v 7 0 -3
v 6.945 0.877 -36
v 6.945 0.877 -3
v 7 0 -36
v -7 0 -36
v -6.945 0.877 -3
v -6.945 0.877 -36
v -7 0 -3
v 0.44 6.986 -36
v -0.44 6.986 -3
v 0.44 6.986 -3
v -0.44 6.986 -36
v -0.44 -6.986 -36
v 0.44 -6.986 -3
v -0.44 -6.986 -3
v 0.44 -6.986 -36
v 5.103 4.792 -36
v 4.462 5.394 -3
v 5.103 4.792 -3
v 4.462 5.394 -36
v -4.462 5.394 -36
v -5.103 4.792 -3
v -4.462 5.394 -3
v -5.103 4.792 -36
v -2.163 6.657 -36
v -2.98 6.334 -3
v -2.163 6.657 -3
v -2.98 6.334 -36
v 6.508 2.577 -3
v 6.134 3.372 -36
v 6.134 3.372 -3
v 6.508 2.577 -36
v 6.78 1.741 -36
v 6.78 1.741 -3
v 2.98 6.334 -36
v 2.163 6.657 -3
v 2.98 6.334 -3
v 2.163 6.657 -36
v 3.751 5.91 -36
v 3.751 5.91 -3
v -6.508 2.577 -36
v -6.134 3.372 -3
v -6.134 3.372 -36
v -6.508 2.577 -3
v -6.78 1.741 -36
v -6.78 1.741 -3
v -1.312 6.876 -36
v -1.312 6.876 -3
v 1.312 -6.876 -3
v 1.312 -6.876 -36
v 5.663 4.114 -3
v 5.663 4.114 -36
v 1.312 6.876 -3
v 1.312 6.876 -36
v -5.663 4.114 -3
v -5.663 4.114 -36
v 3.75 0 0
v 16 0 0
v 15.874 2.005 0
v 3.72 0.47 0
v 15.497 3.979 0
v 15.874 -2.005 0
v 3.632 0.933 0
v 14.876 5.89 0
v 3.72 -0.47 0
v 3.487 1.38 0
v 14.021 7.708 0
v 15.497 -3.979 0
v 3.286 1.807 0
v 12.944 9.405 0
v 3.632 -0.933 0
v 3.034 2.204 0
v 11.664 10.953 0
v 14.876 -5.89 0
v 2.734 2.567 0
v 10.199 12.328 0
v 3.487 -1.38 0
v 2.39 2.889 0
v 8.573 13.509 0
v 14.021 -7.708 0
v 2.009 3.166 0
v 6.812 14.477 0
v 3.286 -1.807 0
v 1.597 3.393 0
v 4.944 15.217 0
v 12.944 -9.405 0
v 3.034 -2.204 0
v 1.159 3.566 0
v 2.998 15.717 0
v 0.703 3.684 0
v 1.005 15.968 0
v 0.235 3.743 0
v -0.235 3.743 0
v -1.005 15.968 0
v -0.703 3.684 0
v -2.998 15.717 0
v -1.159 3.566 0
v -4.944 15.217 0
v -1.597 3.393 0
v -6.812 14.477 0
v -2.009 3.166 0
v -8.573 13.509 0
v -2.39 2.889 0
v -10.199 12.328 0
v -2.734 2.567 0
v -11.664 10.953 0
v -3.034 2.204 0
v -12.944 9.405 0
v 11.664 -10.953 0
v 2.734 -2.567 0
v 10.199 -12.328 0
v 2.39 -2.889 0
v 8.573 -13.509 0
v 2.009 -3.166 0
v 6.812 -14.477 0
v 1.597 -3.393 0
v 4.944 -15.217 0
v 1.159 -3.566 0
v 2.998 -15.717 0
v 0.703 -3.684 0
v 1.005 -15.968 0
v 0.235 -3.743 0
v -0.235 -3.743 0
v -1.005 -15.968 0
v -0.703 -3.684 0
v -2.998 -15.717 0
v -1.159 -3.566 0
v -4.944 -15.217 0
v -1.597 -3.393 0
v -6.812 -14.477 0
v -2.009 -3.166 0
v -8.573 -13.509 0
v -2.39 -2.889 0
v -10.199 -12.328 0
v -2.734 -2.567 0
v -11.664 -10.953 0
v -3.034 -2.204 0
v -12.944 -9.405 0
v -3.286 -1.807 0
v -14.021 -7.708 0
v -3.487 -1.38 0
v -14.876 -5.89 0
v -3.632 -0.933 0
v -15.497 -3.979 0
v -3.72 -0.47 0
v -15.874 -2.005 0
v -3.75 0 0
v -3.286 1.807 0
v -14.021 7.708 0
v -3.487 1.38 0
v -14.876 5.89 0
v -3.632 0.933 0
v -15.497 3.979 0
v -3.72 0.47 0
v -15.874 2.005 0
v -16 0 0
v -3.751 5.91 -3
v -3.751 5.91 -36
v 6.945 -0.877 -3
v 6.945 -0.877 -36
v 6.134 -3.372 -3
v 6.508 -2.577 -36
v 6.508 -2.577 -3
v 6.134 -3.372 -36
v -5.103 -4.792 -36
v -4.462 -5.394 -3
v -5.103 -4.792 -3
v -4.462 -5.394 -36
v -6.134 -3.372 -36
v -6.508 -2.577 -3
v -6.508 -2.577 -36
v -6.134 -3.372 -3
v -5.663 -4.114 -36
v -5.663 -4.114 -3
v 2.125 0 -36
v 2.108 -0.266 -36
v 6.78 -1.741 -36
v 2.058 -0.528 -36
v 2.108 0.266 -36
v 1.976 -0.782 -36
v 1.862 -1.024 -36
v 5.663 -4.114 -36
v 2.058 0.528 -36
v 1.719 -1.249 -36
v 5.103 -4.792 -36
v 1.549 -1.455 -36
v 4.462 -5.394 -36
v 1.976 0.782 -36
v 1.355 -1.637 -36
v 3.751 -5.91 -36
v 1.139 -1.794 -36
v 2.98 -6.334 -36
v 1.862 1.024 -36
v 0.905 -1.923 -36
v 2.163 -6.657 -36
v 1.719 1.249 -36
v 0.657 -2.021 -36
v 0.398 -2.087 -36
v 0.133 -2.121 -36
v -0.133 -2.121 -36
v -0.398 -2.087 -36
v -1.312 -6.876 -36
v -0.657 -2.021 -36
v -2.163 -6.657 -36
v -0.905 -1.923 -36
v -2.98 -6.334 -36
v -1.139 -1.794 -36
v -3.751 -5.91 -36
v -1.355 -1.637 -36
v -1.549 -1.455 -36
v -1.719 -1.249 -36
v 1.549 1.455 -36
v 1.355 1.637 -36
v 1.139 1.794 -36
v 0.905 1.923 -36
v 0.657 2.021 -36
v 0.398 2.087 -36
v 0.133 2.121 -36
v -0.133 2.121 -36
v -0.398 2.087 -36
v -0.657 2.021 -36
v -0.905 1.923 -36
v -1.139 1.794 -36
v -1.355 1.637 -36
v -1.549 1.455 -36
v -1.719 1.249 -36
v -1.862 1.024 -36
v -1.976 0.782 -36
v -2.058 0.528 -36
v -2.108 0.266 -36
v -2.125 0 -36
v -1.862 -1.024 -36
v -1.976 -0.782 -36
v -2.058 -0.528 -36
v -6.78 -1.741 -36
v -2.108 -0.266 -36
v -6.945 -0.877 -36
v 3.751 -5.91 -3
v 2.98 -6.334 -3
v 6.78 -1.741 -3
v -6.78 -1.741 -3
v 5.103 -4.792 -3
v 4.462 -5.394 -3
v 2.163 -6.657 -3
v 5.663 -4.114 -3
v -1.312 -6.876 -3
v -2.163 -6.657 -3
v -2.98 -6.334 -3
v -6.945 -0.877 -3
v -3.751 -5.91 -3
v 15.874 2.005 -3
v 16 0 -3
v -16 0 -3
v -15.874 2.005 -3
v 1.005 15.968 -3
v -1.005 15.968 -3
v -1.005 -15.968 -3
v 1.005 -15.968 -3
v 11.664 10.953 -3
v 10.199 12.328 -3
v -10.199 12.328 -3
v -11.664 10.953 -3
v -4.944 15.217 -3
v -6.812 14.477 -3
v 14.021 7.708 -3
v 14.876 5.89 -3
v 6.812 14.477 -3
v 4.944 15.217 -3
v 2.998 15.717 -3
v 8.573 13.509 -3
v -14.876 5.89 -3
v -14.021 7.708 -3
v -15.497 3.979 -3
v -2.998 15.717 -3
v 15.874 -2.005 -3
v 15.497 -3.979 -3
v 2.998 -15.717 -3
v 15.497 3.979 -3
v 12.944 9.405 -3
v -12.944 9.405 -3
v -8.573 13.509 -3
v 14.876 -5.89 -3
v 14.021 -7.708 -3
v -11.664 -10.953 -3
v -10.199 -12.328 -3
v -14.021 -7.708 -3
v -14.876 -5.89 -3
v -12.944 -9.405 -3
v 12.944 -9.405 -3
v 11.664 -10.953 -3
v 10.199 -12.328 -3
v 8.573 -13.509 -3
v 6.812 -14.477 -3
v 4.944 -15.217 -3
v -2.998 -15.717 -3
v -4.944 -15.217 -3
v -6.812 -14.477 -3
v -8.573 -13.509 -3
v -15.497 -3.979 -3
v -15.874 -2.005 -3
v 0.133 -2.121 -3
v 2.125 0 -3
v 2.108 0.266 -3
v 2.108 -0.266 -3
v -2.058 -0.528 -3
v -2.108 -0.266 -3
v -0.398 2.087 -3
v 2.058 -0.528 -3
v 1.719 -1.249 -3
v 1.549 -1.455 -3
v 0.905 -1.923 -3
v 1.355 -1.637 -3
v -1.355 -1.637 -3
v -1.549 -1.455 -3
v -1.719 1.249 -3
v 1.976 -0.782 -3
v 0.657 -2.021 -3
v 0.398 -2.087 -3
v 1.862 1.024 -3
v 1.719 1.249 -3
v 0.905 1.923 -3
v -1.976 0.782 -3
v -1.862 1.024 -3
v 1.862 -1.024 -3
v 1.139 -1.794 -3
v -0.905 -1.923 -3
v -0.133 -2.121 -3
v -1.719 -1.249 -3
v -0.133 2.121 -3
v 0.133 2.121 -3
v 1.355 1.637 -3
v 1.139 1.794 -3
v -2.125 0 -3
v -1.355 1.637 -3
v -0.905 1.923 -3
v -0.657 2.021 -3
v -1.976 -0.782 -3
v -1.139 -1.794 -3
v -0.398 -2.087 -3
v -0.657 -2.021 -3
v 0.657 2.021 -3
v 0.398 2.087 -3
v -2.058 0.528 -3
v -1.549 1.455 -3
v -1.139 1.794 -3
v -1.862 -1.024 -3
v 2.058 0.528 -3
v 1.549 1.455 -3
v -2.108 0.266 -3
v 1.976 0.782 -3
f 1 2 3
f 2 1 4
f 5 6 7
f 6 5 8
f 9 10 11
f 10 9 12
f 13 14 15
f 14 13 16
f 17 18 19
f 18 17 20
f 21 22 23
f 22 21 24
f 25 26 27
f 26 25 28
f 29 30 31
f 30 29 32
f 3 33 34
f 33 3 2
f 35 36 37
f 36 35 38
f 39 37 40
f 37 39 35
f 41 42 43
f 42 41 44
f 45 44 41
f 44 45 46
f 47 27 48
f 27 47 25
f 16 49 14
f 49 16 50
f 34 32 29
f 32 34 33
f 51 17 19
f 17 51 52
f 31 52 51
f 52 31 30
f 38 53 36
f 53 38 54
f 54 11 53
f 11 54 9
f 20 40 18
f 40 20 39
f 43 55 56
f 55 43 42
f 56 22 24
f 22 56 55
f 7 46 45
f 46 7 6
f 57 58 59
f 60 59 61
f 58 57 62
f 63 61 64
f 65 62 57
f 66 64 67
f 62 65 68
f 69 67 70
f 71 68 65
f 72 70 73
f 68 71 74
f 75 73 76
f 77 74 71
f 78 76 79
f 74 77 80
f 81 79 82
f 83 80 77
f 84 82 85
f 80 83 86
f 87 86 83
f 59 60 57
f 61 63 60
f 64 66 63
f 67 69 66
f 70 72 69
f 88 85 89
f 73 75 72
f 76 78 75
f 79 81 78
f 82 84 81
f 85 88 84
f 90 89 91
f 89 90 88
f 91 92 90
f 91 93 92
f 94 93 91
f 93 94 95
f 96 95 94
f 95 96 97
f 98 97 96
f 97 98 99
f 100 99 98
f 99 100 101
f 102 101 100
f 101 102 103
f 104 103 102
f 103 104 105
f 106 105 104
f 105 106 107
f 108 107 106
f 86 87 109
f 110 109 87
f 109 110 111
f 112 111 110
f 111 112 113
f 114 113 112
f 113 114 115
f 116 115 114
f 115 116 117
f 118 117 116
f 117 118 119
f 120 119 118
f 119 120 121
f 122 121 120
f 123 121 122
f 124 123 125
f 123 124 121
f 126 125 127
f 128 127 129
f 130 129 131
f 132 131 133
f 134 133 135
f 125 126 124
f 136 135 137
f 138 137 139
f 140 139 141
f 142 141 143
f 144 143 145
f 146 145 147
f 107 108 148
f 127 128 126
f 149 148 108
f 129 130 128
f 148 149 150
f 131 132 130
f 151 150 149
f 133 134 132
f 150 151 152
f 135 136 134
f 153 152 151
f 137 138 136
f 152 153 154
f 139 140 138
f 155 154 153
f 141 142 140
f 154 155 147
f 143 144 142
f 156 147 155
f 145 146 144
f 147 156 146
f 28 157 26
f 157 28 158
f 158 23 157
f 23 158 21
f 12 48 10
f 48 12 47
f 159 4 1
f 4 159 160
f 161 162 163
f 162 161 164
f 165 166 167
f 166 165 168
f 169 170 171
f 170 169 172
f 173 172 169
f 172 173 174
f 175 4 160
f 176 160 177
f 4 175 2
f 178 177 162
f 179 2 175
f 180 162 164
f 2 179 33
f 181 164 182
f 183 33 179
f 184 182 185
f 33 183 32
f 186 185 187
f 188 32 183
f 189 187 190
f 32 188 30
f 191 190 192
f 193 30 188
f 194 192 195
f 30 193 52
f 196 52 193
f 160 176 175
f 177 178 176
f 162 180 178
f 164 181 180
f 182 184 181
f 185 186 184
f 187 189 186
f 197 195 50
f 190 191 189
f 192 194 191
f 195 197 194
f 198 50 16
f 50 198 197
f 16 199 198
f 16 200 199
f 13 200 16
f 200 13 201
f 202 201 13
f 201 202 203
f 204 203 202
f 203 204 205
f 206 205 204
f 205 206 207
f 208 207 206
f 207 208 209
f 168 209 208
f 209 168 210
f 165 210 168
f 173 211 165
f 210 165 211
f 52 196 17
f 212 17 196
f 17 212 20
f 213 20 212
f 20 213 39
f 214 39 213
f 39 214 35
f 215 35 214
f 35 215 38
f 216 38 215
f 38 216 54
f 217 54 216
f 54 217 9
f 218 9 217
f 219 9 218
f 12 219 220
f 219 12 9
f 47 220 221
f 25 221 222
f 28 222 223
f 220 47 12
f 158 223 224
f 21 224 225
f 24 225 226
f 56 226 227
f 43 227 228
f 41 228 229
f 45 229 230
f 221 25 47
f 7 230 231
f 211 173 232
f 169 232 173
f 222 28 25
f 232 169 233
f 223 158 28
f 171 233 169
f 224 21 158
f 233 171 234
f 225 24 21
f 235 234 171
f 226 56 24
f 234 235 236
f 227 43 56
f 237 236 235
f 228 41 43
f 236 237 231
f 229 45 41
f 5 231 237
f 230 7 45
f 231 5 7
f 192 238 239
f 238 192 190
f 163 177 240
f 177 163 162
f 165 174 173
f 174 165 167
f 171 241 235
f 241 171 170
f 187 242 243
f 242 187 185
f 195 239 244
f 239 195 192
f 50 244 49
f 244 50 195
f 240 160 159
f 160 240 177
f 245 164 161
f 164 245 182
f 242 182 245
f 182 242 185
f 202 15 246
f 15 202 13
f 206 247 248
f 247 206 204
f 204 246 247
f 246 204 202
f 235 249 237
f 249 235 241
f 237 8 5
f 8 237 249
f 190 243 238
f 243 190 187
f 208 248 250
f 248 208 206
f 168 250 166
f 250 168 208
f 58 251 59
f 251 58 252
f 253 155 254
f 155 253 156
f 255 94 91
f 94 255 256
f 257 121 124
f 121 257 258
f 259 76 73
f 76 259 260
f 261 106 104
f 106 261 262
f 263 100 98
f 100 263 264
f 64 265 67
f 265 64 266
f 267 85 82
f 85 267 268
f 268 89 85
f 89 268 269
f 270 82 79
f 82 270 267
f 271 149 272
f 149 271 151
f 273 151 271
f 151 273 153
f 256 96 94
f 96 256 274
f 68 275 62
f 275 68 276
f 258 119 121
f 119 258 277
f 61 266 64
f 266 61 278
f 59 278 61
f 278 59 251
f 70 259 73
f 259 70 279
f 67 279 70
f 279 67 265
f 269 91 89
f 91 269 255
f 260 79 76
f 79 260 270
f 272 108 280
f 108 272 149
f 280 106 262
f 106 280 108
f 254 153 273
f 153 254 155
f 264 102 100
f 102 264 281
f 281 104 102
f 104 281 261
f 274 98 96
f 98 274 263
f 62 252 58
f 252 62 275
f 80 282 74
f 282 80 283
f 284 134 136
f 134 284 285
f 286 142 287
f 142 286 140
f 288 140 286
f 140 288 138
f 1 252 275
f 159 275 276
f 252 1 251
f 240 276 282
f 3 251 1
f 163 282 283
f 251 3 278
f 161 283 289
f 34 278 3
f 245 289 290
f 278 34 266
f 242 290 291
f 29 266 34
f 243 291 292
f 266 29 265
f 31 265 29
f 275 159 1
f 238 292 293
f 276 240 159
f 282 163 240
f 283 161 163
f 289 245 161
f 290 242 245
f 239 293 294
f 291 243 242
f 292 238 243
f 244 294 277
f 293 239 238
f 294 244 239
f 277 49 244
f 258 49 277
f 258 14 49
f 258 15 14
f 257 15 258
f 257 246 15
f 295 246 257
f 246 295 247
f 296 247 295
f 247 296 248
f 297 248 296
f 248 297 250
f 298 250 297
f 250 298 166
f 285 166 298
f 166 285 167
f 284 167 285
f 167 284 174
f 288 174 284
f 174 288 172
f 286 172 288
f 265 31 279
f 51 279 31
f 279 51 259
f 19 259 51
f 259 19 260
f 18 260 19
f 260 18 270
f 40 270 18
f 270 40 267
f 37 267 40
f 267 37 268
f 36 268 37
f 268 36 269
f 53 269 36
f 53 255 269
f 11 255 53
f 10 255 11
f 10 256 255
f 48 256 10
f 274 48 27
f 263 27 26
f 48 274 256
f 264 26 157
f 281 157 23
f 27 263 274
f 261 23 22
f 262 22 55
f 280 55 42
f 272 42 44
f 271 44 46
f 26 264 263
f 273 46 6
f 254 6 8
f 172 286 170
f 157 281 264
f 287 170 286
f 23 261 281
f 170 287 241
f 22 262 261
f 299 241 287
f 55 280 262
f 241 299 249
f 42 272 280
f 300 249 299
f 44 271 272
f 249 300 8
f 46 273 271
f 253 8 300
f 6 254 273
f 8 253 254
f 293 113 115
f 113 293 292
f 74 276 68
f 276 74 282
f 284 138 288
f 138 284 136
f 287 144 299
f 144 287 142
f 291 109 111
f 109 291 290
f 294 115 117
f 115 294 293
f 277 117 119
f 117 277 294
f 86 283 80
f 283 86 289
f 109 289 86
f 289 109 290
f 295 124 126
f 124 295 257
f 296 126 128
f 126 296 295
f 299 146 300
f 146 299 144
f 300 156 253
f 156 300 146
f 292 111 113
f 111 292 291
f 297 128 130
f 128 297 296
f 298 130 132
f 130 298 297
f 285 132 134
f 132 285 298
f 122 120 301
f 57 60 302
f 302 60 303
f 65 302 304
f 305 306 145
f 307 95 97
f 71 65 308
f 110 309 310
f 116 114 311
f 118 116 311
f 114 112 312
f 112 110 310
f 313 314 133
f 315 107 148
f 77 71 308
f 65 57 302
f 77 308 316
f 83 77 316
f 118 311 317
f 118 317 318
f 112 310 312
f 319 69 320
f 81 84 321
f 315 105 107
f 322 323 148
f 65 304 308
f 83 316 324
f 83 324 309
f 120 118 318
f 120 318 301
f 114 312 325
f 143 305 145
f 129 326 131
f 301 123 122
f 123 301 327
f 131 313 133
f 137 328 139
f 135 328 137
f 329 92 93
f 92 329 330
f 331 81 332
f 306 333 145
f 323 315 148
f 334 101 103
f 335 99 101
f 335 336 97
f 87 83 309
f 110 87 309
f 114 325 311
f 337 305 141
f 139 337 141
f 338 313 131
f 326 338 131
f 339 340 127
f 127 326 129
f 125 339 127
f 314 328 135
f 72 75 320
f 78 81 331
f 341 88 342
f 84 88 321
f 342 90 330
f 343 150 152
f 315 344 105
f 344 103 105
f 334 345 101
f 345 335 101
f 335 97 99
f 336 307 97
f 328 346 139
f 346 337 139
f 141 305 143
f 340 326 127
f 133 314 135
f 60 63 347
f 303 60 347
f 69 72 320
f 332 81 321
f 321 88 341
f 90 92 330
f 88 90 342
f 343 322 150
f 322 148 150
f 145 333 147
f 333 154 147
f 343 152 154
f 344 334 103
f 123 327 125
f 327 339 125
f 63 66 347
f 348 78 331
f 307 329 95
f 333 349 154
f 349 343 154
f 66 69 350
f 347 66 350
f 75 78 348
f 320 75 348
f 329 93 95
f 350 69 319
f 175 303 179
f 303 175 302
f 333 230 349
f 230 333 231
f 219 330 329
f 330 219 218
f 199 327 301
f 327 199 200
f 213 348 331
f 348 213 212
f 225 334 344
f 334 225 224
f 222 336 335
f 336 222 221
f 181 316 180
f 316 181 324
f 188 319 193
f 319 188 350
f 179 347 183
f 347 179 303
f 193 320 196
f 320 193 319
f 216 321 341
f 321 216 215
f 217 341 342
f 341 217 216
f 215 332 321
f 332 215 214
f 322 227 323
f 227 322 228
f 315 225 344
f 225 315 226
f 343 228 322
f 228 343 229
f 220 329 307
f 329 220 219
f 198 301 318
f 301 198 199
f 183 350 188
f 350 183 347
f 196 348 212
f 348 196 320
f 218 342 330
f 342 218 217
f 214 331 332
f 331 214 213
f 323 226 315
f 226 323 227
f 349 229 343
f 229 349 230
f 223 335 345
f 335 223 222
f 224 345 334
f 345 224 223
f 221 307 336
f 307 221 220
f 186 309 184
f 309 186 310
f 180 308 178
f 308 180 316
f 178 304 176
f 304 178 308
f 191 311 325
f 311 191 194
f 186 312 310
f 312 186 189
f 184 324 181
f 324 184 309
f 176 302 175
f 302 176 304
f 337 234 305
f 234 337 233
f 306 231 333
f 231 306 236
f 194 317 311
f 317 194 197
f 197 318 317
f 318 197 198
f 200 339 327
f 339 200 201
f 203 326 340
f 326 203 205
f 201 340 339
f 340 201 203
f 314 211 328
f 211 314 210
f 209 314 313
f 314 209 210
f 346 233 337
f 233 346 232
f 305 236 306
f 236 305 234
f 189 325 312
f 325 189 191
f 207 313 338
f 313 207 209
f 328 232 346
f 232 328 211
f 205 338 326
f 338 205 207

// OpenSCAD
$fn = 50;


difference() {
	union() {
		translate(v = [0, 0, -36.0000000000]) {
			cylinder(h = 36, r = 7.0000000000);
		}
		translate(v = [0, 0, -3.0000000000]) {
			cylinder(h = 3, r = 16.0000000000);
		}
	}
	union() {
		translate(v = [0, 0, 0]) {
			rotate(a = [0, 0, 0]) {
				difference() {
					union() {
						#translate(v = [0, 0, -36.0000000000]) {
							cylinder(h = 36, r = 2.0000000000);
						}
						#translate(v = [0, 0, -3]) {
							cylinder(h = 3, r1 = 2.1250000000, r2 = 3.7500000000);
						}
						#translate(v = [0, 0, -36.0000000000]) {
							cylinder(h = 36, r = 2.1250000000);
						}
						#translate(v = [0, 0, -36.0000000000]) {
							cylinder(h = 36, r = 2.0000000000);
						}
					}
					union();
				}
			}
		}
	}
}
